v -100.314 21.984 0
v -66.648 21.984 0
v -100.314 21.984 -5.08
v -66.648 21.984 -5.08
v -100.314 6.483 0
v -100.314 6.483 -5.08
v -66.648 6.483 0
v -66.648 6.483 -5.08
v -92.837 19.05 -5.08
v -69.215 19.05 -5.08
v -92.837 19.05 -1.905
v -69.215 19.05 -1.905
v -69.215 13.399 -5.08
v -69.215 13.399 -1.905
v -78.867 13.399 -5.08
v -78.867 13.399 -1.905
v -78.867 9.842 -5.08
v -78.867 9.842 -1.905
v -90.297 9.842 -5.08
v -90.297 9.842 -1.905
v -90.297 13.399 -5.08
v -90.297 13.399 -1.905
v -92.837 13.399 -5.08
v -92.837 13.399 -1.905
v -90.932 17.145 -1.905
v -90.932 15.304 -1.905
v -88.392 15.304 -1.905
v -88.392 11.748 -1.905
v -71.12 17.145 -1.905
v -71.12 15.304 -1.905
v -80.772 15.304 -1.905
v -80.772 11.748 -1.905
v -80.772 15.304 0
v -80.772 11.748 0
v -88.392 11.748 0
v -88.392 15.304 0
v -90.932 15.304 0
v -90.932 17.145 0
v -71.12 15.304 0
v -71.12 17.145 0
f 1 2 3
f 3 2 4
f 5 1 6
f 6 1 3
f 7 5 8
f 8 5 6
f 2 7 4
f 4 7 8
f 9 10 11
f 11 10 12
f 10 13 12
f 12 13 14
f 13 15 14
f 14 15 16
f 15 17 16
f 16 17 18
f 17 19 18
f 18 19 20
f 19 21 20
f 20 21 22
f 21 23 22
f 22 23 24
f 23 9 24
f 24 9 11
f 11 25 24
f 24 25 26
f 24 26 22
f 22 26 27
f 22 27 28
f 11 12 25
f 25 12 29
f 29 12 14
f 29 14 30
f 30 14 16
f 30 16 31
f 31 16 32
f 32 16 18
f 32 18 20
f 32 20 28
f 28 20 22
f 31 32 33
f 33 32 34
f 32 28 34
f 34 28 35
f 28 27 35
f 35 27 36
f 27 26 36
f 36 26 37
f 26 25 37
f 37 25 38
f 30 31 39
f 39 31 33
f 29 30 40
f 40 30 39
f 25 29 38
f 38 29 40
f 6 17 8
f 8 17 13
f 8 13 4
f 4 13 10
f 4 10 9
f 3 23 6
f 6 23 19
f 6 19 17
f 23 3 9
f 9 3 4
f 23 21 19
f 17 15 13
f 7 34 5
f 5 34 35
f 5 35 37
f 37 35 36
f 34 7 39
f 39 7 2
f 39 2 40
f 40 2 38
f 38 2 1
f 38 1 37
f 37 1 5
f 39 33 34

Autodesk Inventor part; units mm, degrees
ref_plane "YZ Plane" through (0, 0, 0) normal (1, 0, 0) x (0, 1, 0)
ref_plane "XZ Plane" through (0, 0, 0) normal (0, 1, 0) x (-1, 0, 0)
ref_plane "XY Plane" through (0, 0, 0) normal (0, 0, 1) x (1, 0, 0)
sketch "Sketch1" plane through (0, 0, 0) normal (0, 1, 0) x (-1, 0, 0)
  line L0 (0, 0) -> (177.8, 0)
  line L1 (177.8, 0) -> (177.8, -114.3)
  line L2 (177.8, -114.3) -> (0, -114.3)
  line L3 (0, -114.3) -> (0, 0)
  dimension "d0" = 177.8
  dimension "d1" = 114.3
extrude "Extrusion1" add sketch "Sketch1" along normal blind 38.1
sketch "Sketch2" plane through (0, 0, 0) normal (0, -1, 0) x (1, 0, 0)
  line L0 (-177.8, -114.3) -> (-177.8, 0) projected
  line L1 (0, 0) -> (-177.8, 0)
  line L2 (-177.8, 0) -> (-177.8, -114.3)
  line L3 (-177.8, -114.3) -> (0, -114.3)
  line L4 (0, -114.3) -> (0, 0)
  line L5 (-5.08, -5.08) -> (-172.72, -5.08)
  line L6 (-172.72, -5.08) -> (-172.72, -109.22)
  line L7 (-172.72, -109.22) -> (-5.08, -109.22)
  line L8 (-5.08, -109.22) -> (-5.08, -5.08)
  dimension "d4" = 5.08
extrude "Extrusion2" cut sketch "Sketch2" against normal blind 35.56 contours L8 L7 L6 L5
fillet "Fillet1" radius 3.175 4 edges at (-177.8, 38.1, -57.15) (-88.9, 38.1, 0) (-88.9, 38.1, -114.3) (0, 38.1, -57.15)
sketch "Sketch3" plane through (0, 38.1, 0) normal (0, 1, 0) x (1, 0, 0)
  line L0 (-177.8, 114.3) -> (-171.45, 114.3)
  line L1 (-171.45, 114.3) -> (-171.45, 0)
  line L2 (-171.45, 0) -> (-177.8, 0)
  line L3 (-177.8, 0) -> (-177.8, 114.3)
  line L4 (0, 114.3) -> (-177.8, 114.3) projected
  line L5 (-177.8, 114.3) -> (0, 114.3)
  line L6 (0, 114.3) -> (0, 107.95)
  line L7 (0, 107.95) -> (-177.8, 107.95)
  line L8 (-177.8, 107.95) -> (-177.8, 114.3)
  line L9 (-158.75, 100.4887) -> (-100.6475, 100.4887)
  line L10 (-100.6475, 100.4887) -> (-100.6475, 13.8112)
  line L11 (-100.6475, 13.8112) -> (-158.75, 13.8112)
  line L12 (-158.75, 13.8112) -> (-158.75, 100.4887)
  point P0 (0, 0)
  dimension "d8" = 6.35
  dimension "d9" = 6.35
  dimension "d10" = 58.1025
  dimension "d11" = 86.6775
  dimension "d12" = 13.8112
  dimension "d13" = 19.05
extrude "Extrusion3" cut sketch "Sketch3" against normal blind 35.56 contours L9 L10 L11 L12
sketch "Sketch4" plane through (0, 38.1, 0) normal (0, 1, 0) x (1, 0, 0)
  line L0 (-94.2975, 17.78) -> (-81.2088, 17.78)
  line L1 (-91.7575, 20.32) -> (-91.7575, 26.67)
  line L2 (-91.7575, 26.67) -> (-94.2975, 26.67)
  line L3 (-94.2975, 26.67) -> (-94.2975, 17.78)
  line L4 (-94.2975, 17.78) -> (-78.6765, 17.78)
  line L5 (-78.6765, 17.78) -> (-78.6765, 20.32)
  line L6 (-94.2975, 24.2647) -> (-94.2975, 17.78)
  line L7 (-85.6615, 20.32) -> (-85.6615, 24.13)
  line L8 (-85.6615, 24.13) -> (-88.2015, 24.13)
  line L9 (-88.2015, 24.13) -> (-88.2015, 20.32)
  line L10 (-78.6765, 20.32) -> (-85.6615, 20.32)
  line L11 (-88.2015, 20.32) -> (-91.7575, 20.32)
  line L12 (-100.6475, 100.4887) -> (-100.6475, 13.8112) projected
  line L13 (-177.8, 0) -> (0, 0) projected
  line L14 (-94.2975, 27.94) -> (-78.6765, 27.94)
  line L15 (-78.6765, 27.94) -> (-78.6765, 30.7699)
  line L16 (-81.2165, 30.48) -> (-94.2975, 30.48)
  line L17 (-94.2975, 30.48) -> (-94.2975, 27.94)
  line L18 (-83.0828, 27.94) -> (-78.6765, 27.94)
  line L19 (-78.6765, 27.94) -> (-78.6765, 36.83)
  line L20 (-78.6765, 36.83) -> (-81.2165, 36.83)
  line L21 (-81.2165, 36.83) -> (-81.2165, 30.48)
  ellipse E0 centre (-86.487, 41.91) end of major axis (-94.2975, 41.91) minor radius 5.334
  ellipse E1 centre (-86.487, 53.34) end of major axis (-94.2975, 53.34) minor radius 5.334
  line L22 (-94.2975, 60.96) -> (-78.6765, 60.96)
  line L23 (-78.6765, 60.96) -> (-78.6765, 63.754)
  line L24 (-94.2975, 63.754) -> (-94.2975, 60.96)
  ellipse E2 centre (-86.487, 63.754) end of major axis (-94.2975, 63.754) minor radius 7.62 (-78.6765, 63.754) -> (-94.2975, 63.754) ccw
  line L25 (-91.7575, 63.754) -> (-91.7575, 63.5)
  line L26 (-91.7575, 63.5) -> (-81.2165, 63.5)
  line L27 (-81.2165, 63.5) -> (-81.2165, 63.754)
  line L28 (-94.2975, 82.55) -> (-78.6765, 82.55)
  line L29 (-78.6765, 82.55) -> (-78.6765, 80.01)
  line L30 (-78.6765, 80.01) -> (-94.2975, 80.01)
  line L31 (-94.2975, 80.01) -> (-94.2975, 82.55)
  line L32 (-91.7575, 89.535) -> (-78.6765, 89.535)
  line L33 (-78.6765, 89.535) -> (-78.6765, 92.075)
  line L34 (-78.6765, 92.075) -> (-91.7575, 92.075)
  line L35 (-94.2975, 94.8241) -> (-94.2975, 91.9305)
  line L36 (-94.2975, 85.09) -> (-91.7575, 85.09)
  line L37 (-91.7575, 96.52) -> (-94.2975, 96.52)
  line L38 (-94.2975, 96.52) -> (-94.2975, 85.09)
  line L39 (-91.7575, 85.09) -> (-91.7575, 89.535)
  line L40 (-91.7575, 92.075) -> (-91.7575, 96.52)
  spline S0 degree 5 poles (-91.7575, 41.91) (-91.7584, 41.6813) (-91.6944, 41.4527) (-91.5885, 41.2473) (-91.2042, 40.6846) (-90.6636, 40.2564) (-90.282, 40.0177) (-89.3306, 39.5478) (-88.3046, 39.2718) (-87.7026, 39.1679) (-86.487, 39.0641) (-85.2714, 39.1679) (-84.6694, 39.2718) (-83.6435, 39.5478) (-82.692, 40.0176) (-82.3107, 40.2563) (-81.7696, 40.6845) (-81.3858, 41.2473) (-81.2787, 41.4526) (-81.1539, 41.91) (-81.2787, 42.3674) (-81.3858, 42.5727) (-81.7696, 43.1355) (-82.3107, 43.5637) (-82.692, 43.8024) (-83.6435, 44.2722) (-84.6694, 44.5482) (-85.2714, 44.6521) (-86.487, 44.7559) (-87.7026, 44.6521) (-88.3046, 44.5482) (-89.3306, 44.2722) (-90.282, 43.8023) (-90.6636, 43.5636) (-91.2042, 43.1354) (-91.5885, 42.5727) (-91.6944, 42.3673) (-91.7584, 42.1387) (-91.7575, 41.91) knots 0 0 0 0 0 0 0.044471 0.044471 0.044471 0.131758 0.131758 0.131758 0.25 0.25 0.25 0.36824 0.36824 0.36824 0.455522 0.455522 0.455522 0.5 0.5 0.5 0.544478 0.544478 0.544478 0.63176 0.63176 0.63176 0.75 0.75 0.75 0.868242 0.868242 0.868242 0.955529 0.955529 0.955529 1 1 1 1 1 1
  spline S1 degree 5 poles (-91.7575, 53.34) (-91.7584, 53.1113) (-91.6944, 52.8827) (-91.5885, 52.6773) (-91.2042, 52.1146) (-90.6636, 51.6864) (-90.282, 51.4477) (-89.3306, 50.9778) (-88.3046, 50.7018) (-87.7026, 50.5979) (-86.487, 50.4941) (-85.2714, 50.5979) (-84.6694, 50.7018) (-83.6435, 50.9778) (-82.692, 51.4476) (-82.3107, 51.6863) (-81.7696, 52.1145) (-81.3858, 52.6773) (-81.2787, 52.8826) (-81.1539, 53.34) (-81.2787, 53.7974) (-81.3858, 54.0027) (-81.7696, 54.5655) (-82.3107, 54.9937) (-82.692, 55.2324) (-83.6435, 55.7022) (-84.6694, 55.9782) (-85.2714, 56.0821) (-86.487, 56.1859) (-87.7026, 56.0821) (-88.3046, 55.9782) (-89.3306, 55.7022) (-90.282, 55.2323) (-90.6636, 54.9936) (-91.2042, 54.5654) (-91.5885, 54.0027) (-91.6944, 53.7973) (-91.7584, 53.5687) (-91.7575, 53.34) knots 0 0 0 0 0 0 0.044471 0.044471 0.044471 0.131758 0.131758 0.131758 0.25 0.25 0.25 0.36824 0.36824 0.36824 0.455522 0.455522 0.455522 0.5 0.5 0.5 0.544478 0.544478 0.544478 0.63176 0.63176 0.63176 0.75 0.75 0.75 0.868242 0.868242 0.868242 0.955529 0.955529 0.955529 1 1 1 1 1 1
  spline S2 degree 5 poles (-81.2165, 63.754) (-81.2166, 64.309) (-81.2953, 64.8639) (-81.4525, 65.404) (-82.1282, 66.8995) (-83.3585, 68.0474) (-84.3453, 68.5716) (-86.487, 69.0964) (-88.6287, 68.5716) (-89.6155, 68.0474) (-90.8458, 66.8995) (-91.5215, 65.404) (-91.6787, 64.8639) (-91.7574, 64.309) (-91.7575, 63.754) knots 0 0 0 0 0 0 0.170659 0.170659 0.170659 0.5 0.5 0.5 0.829341 0.829341 0.829341 1 1 1 1 1 1
  point P0 (-94.2975, 93.3773)
  point P1 (-88.9, 0)
  point P2 (-93.0275, 85.09)
  dimension "d32" = 5.334
  dimension "d33" = 7.8105
  dimension "d36" = 7.8105
  dimension "d37" = 5.334
  dimension "d42" = 7.62
  dimension "d43" = 2.54
  dimension "d16" = 2.54
  dimension "d17" = 3.556
  dimension "d18" = 2.54
  dimension "d19" = 6.985
  dimension "d20" = 8.89
  dimension "d21" = 6.35
  dimension "d22" = 3.81
  dimension "d23" = 3.81
  dimension "d24" = 6.35
  dimension "d25" = 17.78
  dimension "d26" = 2.54
  dimension "d27" = 2.54
  dimension "d28" = 6.35
  dimension "d29" = 15.621
  dimension "d30" = 6.35
  dimension "d31" = 27.94
  dimension "d34" = 14.1605
  dimension "d35" = 41.91
  dimension "d38" = 14.1605
  dimension "d39" = 53.34
  dimension "d40" = 2.54
  dimension "d41" = 2.54
  dimension "d44" = 6.35
  dimension "d45" = 15.621
  dimension "d46" = 60.96
  dimension "d47" = 2.794
  dimension "d48" = 63.754
  dimension "d49" = 14.1605
  dimension "d50" = 2.54
  dimension "d51" = 15.621
  dimension "d52" = 4.445
  dimension "d53" = 4.445
  dimension "d54" = 2.54
  dimension "d55" = 2.54
  dimension "d56" = 6.35
  dimension "d57" = 80.01
  dimension "d58" = 2.54
  dimension "d59" = 13.081
  dimension "d62" = 3.9688
  dimension "d63" = 3.9688
extrude "Extrusion4" cut sketch "Sketch4" against normal blind 1.27
sketch "Sketch5" plane through (0, 38.1, 0) normal (0, 1, 0) x (1, 0, 0)
  line L0 (-43.4975, 22.6219) -> (-37.9413, 22.6219)
  line L1 (-37.9413, 22.6219) -> (-37.9413, 28.1781)
  line L2 (-37.9413, 28.1781) -> (-43.4975, 28.1781)
  line L3 (-43.4975, 28.1781) -> (-43.4975, 22.6219)
  line L4 (-43.4975, 38.4969) -> (-37.9413, 38.4969)
  line L5 (-37.9413, 38.4969) -> (-37.9413, 44.0531)
  line L6 (-37.9413, 44.0531) -> (-43.4975, 44.0531)
  line L7 (-43.4975, 44.0531) -> (-43.4975, 38.4969)
  line L8 (-43.4975, 54.3719) -> (-37.9413, 54.3719)
  line L9 (-37.9413, 54.3719) -> (-37.9413, 59.9281)
  line L10 (-37.9413, 59.9281) -> (-43.4975, 59.9281)
  line L11 (-43.4975, 59.9281) -> (-43.4975, 54.3719)
  line L12 (-43.4975, 70.2469) -> (-37.9413, 70.2469)
  line L13 (-37.9413, 70.2469) -> (-37.9413, 75.8031)
  line L14 (-37.9413, 75.8031) -> (-43.4975, 75.8031)
  line L15 (-43.4975, 75.8031) -> (-43.4975, 70.2469)
  line L16 (-43.4975, 86.1219) -> (-37.9413, 86.1219)
  line L17 (-37.9413, 86.1219) -> (-37.9413, 91.6781)
  line L18 (-37.9413, 91.6781) -> (-43.4975, 91.6781)
  line L19 (-43.4975, 91.6781) -> (-43.4975, 86.1219)
  line L20 (0, 114.3) -> (-177.8, 114.3) projected
  line L21 (-177.8, 0) -> (0, 0) projected
  line L22 (-100.6475, 100.4887) -> (-100.6475, 13.8112) projected
  circle A0 centre (-21.9075, 25.4) radius 3.81
  circle A1 centre (-21.9075, 41.275) radius 3.81
  circle A2 centre (-21.9075, 57.15) radius 3.81
  circle A3 centre (-21.9075, 73.025) radius 3.81
  circle A4 centre (-21.9075, 88.9) radius 3.81
  point P0 (-43.4975, 73.025)
  dimension "d64" = 5.5563
  dimension "d65" = 5.5563
  dimension "d66" = 5.5563
  dimension "d67" = 5.5563
  dimension "d68" = 5.5563
  dimension "d69" = 5.5563
  dimension "d70" = 15.875
  dimension "d71" = 15.875
  dimension "d72" = 15.875
  dimension "d73" = 15.875
  dimension "d74" = 22.6219
  dimension "d76" = 57.15
  dimension "d77" = 7.62
  dimension "d78" = 7.62
  dimension "d79" = 7.62
  dimension "d80" = 7.62
  dimension "d81" = 7.62
  dimension "d82" = 15.875
  dimension "d83" = 15.875
  dimension "d84" = 15.875
  dimension "d85" = 15.875
  dimension "d86" = 25.4
  dimension "d87" = 78.74
  dimension "d88" = 78.74
  dimension "d89" = 78.74
  dimension "d90" = 78.74
  dimension "d91" = 78.74
extrude "Extrusion5" cut sketch "Sketch5" against normal blind 25.4
sketch "Sketch6" plane through (0, 35.56, 0) normal (0, -1, 0) x (1, 0, 0)
  circle A0 centre (-21.9075, -88.9) radius 3.81 projected
  circle A1 centre (-21.9075, -88.9) radius 5.08
  circle A2 centre (-21.9075, -73.025) radius 3.81 projected
  circle A3 centre (-21.9075, -73.025) radius 5.08
  circle A4 centre (-21.9075, -57.15) radius 3.81 projected
  circle A5 centre (-21.9075, -57.15) radius 5.08
  circle A6 centre (-21.9075, -41.275) radius 3.81 projected
  circle A7 centre (-21.9075, -41.275) radius 5.08
  circle A8 centre (-21.9075, -25.4) radius 3.81 projected
  circle A9 centre (-21.9075, -25.4) radius 5.08
  line L0 (-43.4975, -59.9281) -> (-37.9413, -59.9281)
  line L1 (-37.9413, -59.9281) -> (-37.9413, -54.3719)
  line L2 (-37.9413, -54.3719) -> (-43.4975, -54.3719)
  line L3 (-43.4975, -54.3719) -> (-43.4975, -59.9281)
  line L4 (-45.4025, -61.8331) -> (-36.0363, -61.8331)
  line L5 (-36.0363, -61.8331) -> (-36.0363, -52.4669)
  line L6 (-36.0363, -52.4669) -> (-45.4025, -52.4669)
  line L7 (-45.4025, -52.4669) -> (-45.4025, -61.8331)
  line L8 (-43.4975, -91.6781) -> (-37.9413, -91.6781)
  line L9 (-37.9413, -91.6781) -> (-37.9413, -86.1219)
  line L10 (-37.9413, -86.1219) -> (-43.4975, -86.1219)
  line L11 (-43.4975, -86.1219) -> (-43.4975, -91.6781)
  line L12 (-43.4975, -75.8031) -> (-37.9413, -75.8031) projected
  line L13 (-37.9413, -70.2469) -> (-36.6713, -68.9769) projected
  line L14 (-43.4975, -75.8031) -> (-37.9413, -75.8031)
  line L15 (-37.9413, -75.8031) -> (-37.9413, -70.2469)
  line L16 (-37.9413, -70.2469) -> (-43.4975, -70.2469)
  line L17 (-43.4975, -70.2469) -> (-43.4975, -75.8031)
  line L18 (-43.4975, -38.4969) -> (-43.4975, -44.0531) projected
  line L19 (-43.4975, -44.0531) -> (-37.9413, -44.0531)
  line L20 (-37.9413, -44.0531) -> (-37.9413, -38.4969)
  line L21 (-37.9413, -38.4969) -> (-43.4975, -38.4969)
  line L22 (-43.4975, -38.4969) -> (-43.4975, -44.0531)
  line L23 (-37.9413, -28.1781) -> (-43.4975, -28.1781) projected
  line L24 (-37.9413, -22.6219) -> (-36.6713, -21.3519) projected
  line L25 (-43.4975, -28.1781) -> (-37.9413, -28.1781)
  line L26 (-37.9413, -28.1781) -> (-37.9413, -22.6219)
  line L27 (-37.9413, -22.6219) -> (-43.4975, -22.6219)
  line L28 (-43.4975, -22.6219) -> (-43.4975, -28.1781)
  line L29 (-45.4025, -77.7081) -> (-36.0363, -77.7081)
  line L30 (-36.0363, -77.7081) -> (-36.0363, -68.3419)
  line L31 (-36.0363, -68.3419) -> (-45.4025, -68.3419)
  line L32 (-45.4025, -68.3419) -> (-45.4025, -77.7081)
  line L33 (-45.4025, -84.2169) -> (-36.0362, -84.2169)
  line L34 (-36.0362, -84.2169) -> (-36.0362, -93.5831)
  line L35 (-36.0362, -93.5831) -> (-45.4025, -93.5831)
  line L36 (-45.4025, -93.5831) -> (-45.4025, -84.2169)
  line L37 (-36.0362, -45.9581) -> (-45.4025, -45.9581)
  line L38 (-45.4025, -45.9581) -> (-45.4025, -36.5919)
  line L39 (-45.4025, -36.5919) -> (-36.0362, -36.5919)
  line L40 (-36.0362, -36.5919) -> (-36.0362, -45.9581)
  line L41 (-45.4025, -30.0831) -> (-36.0363, -30.0831)
  line L42 (-36.0363, -30.0831) -> (-36.0363, -20.7169)
  line L43 (-36.0363, -20.7169) -> (-45.4025, -20.7169)
  line L44 (-45.4025, -20.7169) -> (-45.4025, -30.0831)
  line L45 (-48.3394, -99.6918) -> (-33.0994, -99.6918)
  line L46 (-33.0994, -99.6918) -> (-33.0994, -14.6018)
  line L47 (-33.0994, -14.6018) -> (-48.3394, -14.6018)
  line L48 (-48.3394, -14.6018) -> (-48.3394, -99.6918)
  point P0 (0, 0)
  point P1 (-43.4975, -38.4969)
  point P2 (-40.7194, -44.0531)
  point P3 (-40.7194, -91.6781)
  point P4 (-40.7194, -14.6018)
  dimension "d97" = 10.16
  dimension "d98" = 10.16
  dimension "d99" = 10.16
  dimension "d100" = 10.16
  dimension "d101" = 10.16
  dimension "d119" = 1.905
  dimension "d120" = 1.905
  dimension "d121" = 1.905
  dimension "d122" = 1.905
  dimension "d123" = 1.905
  dimension "d136" = 15.24
  dimension "d137" = 85.09
  dimension "d139" = 7.62
  dimension "d140" = 8.0137
  dimension "d141" = 8.02
extrude "Extrusion6" cut sketch "Sketch6" against normal blind 1.27 contours A1 | A3 | A5 | A7 | A9
extrude "Extrusion9" cut sketch "Sketch6" against normal blind 1.7463 contours L7 L6 L5 L4 | L32 L31 L30 L29 | L33 L34 L35 L36 | L37 L38 L39 L40 | L44 L43 L42 L41
sketch "Sketch8" plane through (0, 35.56, 0) normal (0, -1, 0) x (1, 0, 0)
  line L0 (-100.6475, -13.8112) -> (-100.6475, -100.4887) projected
  line L1 (-100.6475, -13.8112) -> (-158.75, -13.8112)
  line L2 (-158.75, -13.8112) -> (-158.75, -7.4613)
  line L3 (-158.75, -7.4613) -> (-100.6475, -7.4612)
  line L4 (-100.6475, -7.4612) -> (-100.6475, -13.8112)
  line L5 (-158.75, -100.4887) -> (-100.6475, -100.4887) projected
  line L6 (-100.6475, -100.4887) -> (-158.75, -100.4887)
  line L7 (-158.75, -100.4887) -> (-158.75, -107.4737)
  line L8 (-158.75, -107.4737) -> (-100.6475, -107.4737)
  line L9 (-100.6475, -107.4737) -> (-100.6475, -100.4887)
  line L10 (-100.6475, -7.4612) -> (-94.2975, -7.4612)
  line L11 (-94.2975, -7.4612) -> (-94.2975, -13.8112)
  line L12 (-94.2975, -13.8112) -> (-100.6475, -13.8112)
  line L13 (-100.6475, -13.8112) -> (-100.6475, -7.4612)
  line L14 (-100.6475, -100.4887) -> (-94.2975, -100.4887)
  line L15 (-94.2975, -100.4887) -> (-94.2975, -107.4737)
  line L16 (-94.2975, -107.4737) -> (-100.6475, -107.4737)
  line L17 (-100.6475, -107.4737) -> (-100.6475, -100.4887)
  line L18 (-158.75, -100.4887) -> (-165.1, -100.4887)
  line L19 (-165.1, -100.4887) -> (-165.1, -107.4737)
  line L20 (-165.1, -107.4737) -> (-158.75, -107.4737)
  line L21 (-158.75, -107.4737) -> (-158.75, -100.4887)
  line L22 (-158.75, -7.4613) -> (-165.1, -7.4613)
  line L23 (-165.1, -7.4613) -> (-165.1, -13.8112)
  line L24 (-165.1, -13.8112) -> (-158.75, -13.8112)
  line L25 (-158.75, -13.8112) -> (-158.75, -7.4613)
  line L26 (-102.4053, -9.0487) -> (-155.7453, -9.0487)
  line L27 (-155.7453, -9.0487) -> (-155.7453, -12.2237)
  line L28 (-155.7453, -12.2237) -> (-102.4053, -12.2237)
  line L29 (-102.4053, -12.2237) -> (-102.4053, -9.0487)
  point P0 (0, 0)
  dimension "d126" = 6.35
  dimension "d127" = 6.985
  dimension "d128" = 6.35
  dimension "d129" = 6.35
  dimension "d130" = 6.35
  dimension "d131" = 53.34
  dimension "d132" = 3.175
  dimension "d133" = 1.5875
extrude "Extrusion10" cut sketch "Sketch8" against normal blind 1.27 contours L29 L28 L27 L26
extrude "Extrusion11" cut sketch "Sketch6" against normal blind 0.9525 contours L48 L47 L46 L45
sketch "Sketch9" plane through (-177.8, 0, 0) normal (0, 0, 1) x (1, 0, 0)
  line L0 (77.1525, 35.56) -> (19.05, 35.56) projected
  line L1 (172.72, 0) -> (5.08, 0) projected
  line L2 (77.1525, 35.56) -> (127.9525, 35.56)
  line L3 (127.9525, 35.56) -> (127.9525, 0)
  line L4 (127.9525, 0) -> (77.1525, 0)
  line L5 (77.1525, 0) -> (77.1525, 35.56)
  line L6 (86.868, 17.145) -> (106.68, 17.145)
  line L7 (106.68, 17.145) -> (106.68, 15.3035)
  line L8 (106.68, 15.3035) -> (86.868, 15.3035)
  line L9 (86.868, 15.3035) -> (86.868, 17.145)
  line L10 (89.408, 15.3035) -> (97.028, 15.3035)
  line L11 (97.028, 15.3035) -> (97.028, 11.7475)
  line L12 (97.028, 11.7475) -> (89.408, 11.7475)
  line L13 (89.408, 11.7475) -> (89.408, 15.3035)
  line L14 (0, 34.925) -> (177.8, 34.925) projected
  line L15 (0, 0) -> (0, 34.925) projected
  line L16 (177.8, 0) -> (177.8, 34.925) projected
  point P0 (97.028, 15.3035)
  dimension "d144" = 50.8
  dimension "d145" = 19.812
  dimension "d146" = 1.8415
  dimension "d147" = 7.62
  dimension "d148" = 3.556
  dimension "d149" = 2.54
  dimension "d150" = 17.78
  dimension "d187" = 71.12
extrude "Extrusion12" cut sketch "Sketch9" against normal blind 5.08 contours L6 L7 L8 L9 | L8 L11 L12 L13
sketch "Sketch10" plane through (-5.08, 0, -5.08) normal (0, 0, -1) x (-1, 0, 0)
  line L0 (83.312, 11.7475) -> (75.692, 11.7475) projected
  line L1 (83.312, 15.3035) -> (85.852, 15.3035) projected
  line L2 (75.692, 11.7475) -> (83.312, 11.7475)
  line L3 (83.312, 11.7475) -> (83.312, 15.3035)
  line L4 (75.692, 15.3035) -> (75.692, 11.7475)
  line L5 (75.692, 15.3035) -> (66.04, 15.3035) projected
  line L6 (85.852, 17.145) -> (85.852, 15.3035) projected
  line L7 (85.852, 15.3035) -> (85.852, 17.145)
  line L8 (85.852, 17.145) -> (66.04, 17.145)
  line L9 (66.04, 17.145) -> (66.04, 15.3035)
  line L10 (66.04, 15.3035) -> (75.692, 15.3035)
  line L11 (83.312, 15.3035) -> (85.852, 15.3035)
  line L12 (73.787, 9.8425) -> (85.217, 9.8425)
  line L13 (85.217, 9.8425) -> (85.217, 13.3985)
  line L14 (85.217, 13.3985) -> (87.757, 13.3985)
  line L15 (87.757, 13.3985) -> (87.757, 19.05)
  line L16 (87.757, 19.05) -> (64.135, 19.05)
  line L17 (64.135, 19.05) -> (64.135, 13.3985)
  line L18 (64.135, 13.3985) -> (73.787, 13.3985)
  line L19 (73.787, 13.3985) -> (73.787, 9.8425)
  line L20 (73.787, 13.3985) -> (73.787, 15.3035)
  line L21 (85.217, 13.3985) -> (85.217, 15.3035)
  point P0 (-5.08, 0)
  dimension "d153" = 1.905
extrude "Extrusion13" cut sketch "Sketch10" against normal blind 3.175 contours L3 L1 L21 L13 L12 L19 L20 L5 L4 L0 | L1 L6 L8 L9 L5 L20 L18 L17 L16 L15 L14 L21
sketch "Sketch11" plane through (0, 0, -114.3) normal (0, 0, -1) x (-1, 0, 0)
  line L0 (63.5, 23.495) -> (76.2, 23.495)
  line L1 (76.2, 23.495) -> (76.2, 15.875)
  line L2 (76.2, 15.875) -> (63.5, 15.875)
  line L3 (63.5, 15.875) -> (63.5, 23.495)
  line L4 (0, 0) -> (0, 34.925) projected
  circle A0 centre (69.85, 19.685) radius 3.81
  line L5 (0, 34.925) -> (177.8, 34.925) projected
  dimension "d156" = 7.62
  dimension "d157" = 63.5
  dimension "d158" = 12.7
  dimension "d164" = 11.43
  dimension "d165" = 15.24
extrude "Extrusion14" cut sketch "Sketch11" against normal blind 6.35 contours A0
sketch "Sketch12" plane through (-172.72, 0, -109.22) normal (0, 0, 1) x (1, 0, 0)
  line L0 (96.52, 15.875) -> (109.22, 15.875)
  line L1 (109.22, 15.875) -> (109.22, 23.495)
  line L2 (109.22, 23.495) -> (96.52, 23.495)
  line L3 (96.52, 23.495) -> (96.52, 15.875)
  circle A0 centre (102.87, 19.685) radius 3.81 projected
  line L4 (96.52, 15.875) -> (109.22, 23.495) construction
  line L5 (109.22, 15.875) -> (96.52, 23.495) construction
  point P0 (172.72, 0)
  point P1 (102.87, 15.875)
  point P2 (102.87, 23.495)
  dimension "d161" = 12.7
extrude "Extrusion15" cut sketch "Sketch12" against normal blind 2.0574 contours L3 L2 A0 L0 | A0 L2 L1 L0
sketch "Sketch13" plane through (0, 35.56, 0) normal (0, -1, 0) x (1, 0, 0)
  line L0 (-48.3394, -99.6918) -> (-48.3394, -14.6018) projected
  line L1 (-48.3394, -31.1933) -> (-46.4344, -31.1933)
  line L2 (-46.4344, -31.1933) -> (-46.4344, -36.2733)
  line L3 (-46.4344, -36.2733) -> (-48.3394, -36.2733)
  line L4 (-48.3394, -36.2733) -> (-48.3394, -31.1933)
  line L5 (-33.0994, -14.6018) -> (-33.0994, -99.6918) projected
  line L6 (-33.0994, -36.2733) -> (-35.0044, -36.2733)
  line L7 (-35.0044, -36.2733) -> (-35.0044, -31.1933)
  line L8 (-35.0044, -31.1933) -> (-33.0994, -31.1933)
  line L9 (-33.0994, -31.1933) -> (-33.0994, -36.2733)
  line L10 (-46.4344, -31.1933) -> (-51.5144, -31.1933)
  line L11 (-51.5144, -31.1933) -> (-51.5144, -36.2733)
  line L12 (-51.5144, -36.2733) -> (-46.4344, -36.2733)
  line L13 (-46.4344, -36.2733) -> (-46.4344, -31.1933)
  line L14 (-35.0044, -31.1933) -> (-29.9244, -31.1933)
  line L15 (-29.9244, -31.1933) -> (-29.9244, -36.2733)
  line L16 (-29.9244, -36.2733) -> (-35.0044, -36.2733)
  line L17 (-35.0044, -36.2733) -> (-35.0044, -31.1933)
  line L18 (-48.3394, -78.5039) -> (-46.4344, -78.5039)
  line L19 (-46.4344, -78.5039) -> (-46.4344, -83.5839)
  line L20 (-46.4344, -83.5839) -> (-48.3394, -83.5839)
  line L21 (-48.3394, -83.5839) -> (-48.3394, -78.5039)
  line L22 (-33.0994, -78.5039) -> (-35.0044, -78.5039)
  line L23 (-35.0044, -78.5039) -> (-35.0044, -83.5839)
  line L24 (-35.0044, -83.5839) -> (-33.0994, -83.5839)
  line L25 (-33.0994, -83.5839) -> (-33.0994, -78.5039)
  line L26 (-46.4344, -78.5039) -> (-51.5144, -78.5039)
  line L27 (-51.5144, -78.5039) -> (-51.5144, -83.5839)
  line L28 (-51.5144, -83.5839) -> (-46.4344, -83.5839)
  line L29 (-46.4344, -83.5839) -> (-46.4344, -78.5039)
  line L30 (-35.0044, -78.5039) -> (-29.9244, -78.5039)
  line L31 (-29.9244, -78.5039) -> (-29.9244, -83.5839)
  line L32 (-29.9244, -83.5839) -> (-35.0044, -83.5839)
  line L33 (-35.0044, -83.5839) -> (-35.0044, -78.5039)
  point P0 (0, 0)
  dimension "d166" = 5.08
  dimension "d167" = 5.08
  dimension "d168" = 5.08
  dimension "d169" = 1.905
  dimension "d170" = 1.905
  dimension "d171" = 1.905
  dimension "d172" = 1.905
  dimension "d173" = 5.08
  dimension "d174" = 5.08
  dimension "d175" = 5.08
  dimension "d176" = 5.08
extrude "Extrusion16" add sketch "Sketch13" along normal blind 1.905
fillet "Fillet2" radius 3.175 4 edges at (-29.9244, 33.655, -81.0439) (-51.5144, 33.655, -81.0439) (-29.9244, 33.655, -33.7333) (-51.5144, 33.655, -33.7333)
sketch "Sketch14" plane through (-46.4344, 35.56, -36.2733) normal (0, 0, -1) x (-1, 0, 0)
  line L0 (1.905, 0) -> (0, 0) projected
  line L1 (0, 0) -> (0, -1.905) projected
  line L2 (1.905, 0) -> (0, 0)
  line L3 (0, 0) -> (0, -0.9525)
  line L4 (0, -0.9525) -> (1.905, -0.9525)
  line L5 (1.905, -0.9525) -> (1.905, 0)
  line L6 (-11.43, 0) -> (-13.335, 0) projected
  line L7 (-13.335, 0) -> (-11.43, 0)
  line L8 (-11.43, 0) -> (-11.43, -0.9525)
  line L9 (-11.43, -0.9525) -> (-13.335, -0.9525)
  line L10 (-13.335, -0.9525) -> (-13.335, 0)
  point P0 (-46.4344, -35.56)
  point P1 (-11.43, 0)
  dimension "d180" = 0.9525
  dimension "d181" = 0.9525
extrude "Extrusion17" cut sketch "Sketch14" along normal blind 50.8 and the other way blind 12.7
sketch "Sketch15" plane through (-5.08, 0, -5.08) normal (0, 0, -1) x (-1, 0, 0)
  line L0 (-38.9377, 59.5644) -> (198.5695, 59.5644)
  line L1 (198.5695, 59.5644) -> (198.5695, -28.7094)
  line L2 (198.5695, -28.7094) -> (-38.9377, -28.7094)
  line L3 (-38.9377, -28.7094) -> (-38.9377, 59.5644)
  point P0 (-5.08, 0)
extrude "Extrusion18" cut sketch "Sketch15" along normal blind 127
sketch "Sketch16" plane through (0, 0, -5.08) normal (0, 0, -1) x (-1, 0, 0)
  line L0 (-15.6131, 50.2038) -> (60.2501, 50.2038)
  line L1 (60.2501, -6.2366) -> (-15.6131, -6.2366)
  line L2 (-15.6131, -6.2366) -> (-15.6131, 50.2038)
  line L3 (105.4176, 46.3954) -> (184.8607, 46.3954)
  line L4 (184.8607, 46.3954) -> (184.8607, -9.588)
  line L5 (184.8607, -9.588) -> (105.4176, -9.588)
  line L6 (60.2501, 50.2038) -> (105.4176, 50.2038)
  line L7 (105.4176, 50.2038) -> (105.4176, 46.3954)
  line L8 (100.3144, 21.9836) -> (66.6482, 21.9836)
  line L9 (105.4176, -9.588) -> (60.2501, -9.588)
  line L10 (60.2501, -9.588) -> (60.2501, -6.2366)
  line L11 (66.6482, 6.4834) -> (100.3144, 6.4834)
  line L12 (100.3144, 6.4834) -> (100.3144, 21.9836)
  line L13 (66.6482, 21.9836) -> (66.6482, 6.4834)
  point P0 (0, 0)
extrude "Extrusion19" cut sketch "Sketch16" against normal blind 127
properties part number "PIC32_slot"
